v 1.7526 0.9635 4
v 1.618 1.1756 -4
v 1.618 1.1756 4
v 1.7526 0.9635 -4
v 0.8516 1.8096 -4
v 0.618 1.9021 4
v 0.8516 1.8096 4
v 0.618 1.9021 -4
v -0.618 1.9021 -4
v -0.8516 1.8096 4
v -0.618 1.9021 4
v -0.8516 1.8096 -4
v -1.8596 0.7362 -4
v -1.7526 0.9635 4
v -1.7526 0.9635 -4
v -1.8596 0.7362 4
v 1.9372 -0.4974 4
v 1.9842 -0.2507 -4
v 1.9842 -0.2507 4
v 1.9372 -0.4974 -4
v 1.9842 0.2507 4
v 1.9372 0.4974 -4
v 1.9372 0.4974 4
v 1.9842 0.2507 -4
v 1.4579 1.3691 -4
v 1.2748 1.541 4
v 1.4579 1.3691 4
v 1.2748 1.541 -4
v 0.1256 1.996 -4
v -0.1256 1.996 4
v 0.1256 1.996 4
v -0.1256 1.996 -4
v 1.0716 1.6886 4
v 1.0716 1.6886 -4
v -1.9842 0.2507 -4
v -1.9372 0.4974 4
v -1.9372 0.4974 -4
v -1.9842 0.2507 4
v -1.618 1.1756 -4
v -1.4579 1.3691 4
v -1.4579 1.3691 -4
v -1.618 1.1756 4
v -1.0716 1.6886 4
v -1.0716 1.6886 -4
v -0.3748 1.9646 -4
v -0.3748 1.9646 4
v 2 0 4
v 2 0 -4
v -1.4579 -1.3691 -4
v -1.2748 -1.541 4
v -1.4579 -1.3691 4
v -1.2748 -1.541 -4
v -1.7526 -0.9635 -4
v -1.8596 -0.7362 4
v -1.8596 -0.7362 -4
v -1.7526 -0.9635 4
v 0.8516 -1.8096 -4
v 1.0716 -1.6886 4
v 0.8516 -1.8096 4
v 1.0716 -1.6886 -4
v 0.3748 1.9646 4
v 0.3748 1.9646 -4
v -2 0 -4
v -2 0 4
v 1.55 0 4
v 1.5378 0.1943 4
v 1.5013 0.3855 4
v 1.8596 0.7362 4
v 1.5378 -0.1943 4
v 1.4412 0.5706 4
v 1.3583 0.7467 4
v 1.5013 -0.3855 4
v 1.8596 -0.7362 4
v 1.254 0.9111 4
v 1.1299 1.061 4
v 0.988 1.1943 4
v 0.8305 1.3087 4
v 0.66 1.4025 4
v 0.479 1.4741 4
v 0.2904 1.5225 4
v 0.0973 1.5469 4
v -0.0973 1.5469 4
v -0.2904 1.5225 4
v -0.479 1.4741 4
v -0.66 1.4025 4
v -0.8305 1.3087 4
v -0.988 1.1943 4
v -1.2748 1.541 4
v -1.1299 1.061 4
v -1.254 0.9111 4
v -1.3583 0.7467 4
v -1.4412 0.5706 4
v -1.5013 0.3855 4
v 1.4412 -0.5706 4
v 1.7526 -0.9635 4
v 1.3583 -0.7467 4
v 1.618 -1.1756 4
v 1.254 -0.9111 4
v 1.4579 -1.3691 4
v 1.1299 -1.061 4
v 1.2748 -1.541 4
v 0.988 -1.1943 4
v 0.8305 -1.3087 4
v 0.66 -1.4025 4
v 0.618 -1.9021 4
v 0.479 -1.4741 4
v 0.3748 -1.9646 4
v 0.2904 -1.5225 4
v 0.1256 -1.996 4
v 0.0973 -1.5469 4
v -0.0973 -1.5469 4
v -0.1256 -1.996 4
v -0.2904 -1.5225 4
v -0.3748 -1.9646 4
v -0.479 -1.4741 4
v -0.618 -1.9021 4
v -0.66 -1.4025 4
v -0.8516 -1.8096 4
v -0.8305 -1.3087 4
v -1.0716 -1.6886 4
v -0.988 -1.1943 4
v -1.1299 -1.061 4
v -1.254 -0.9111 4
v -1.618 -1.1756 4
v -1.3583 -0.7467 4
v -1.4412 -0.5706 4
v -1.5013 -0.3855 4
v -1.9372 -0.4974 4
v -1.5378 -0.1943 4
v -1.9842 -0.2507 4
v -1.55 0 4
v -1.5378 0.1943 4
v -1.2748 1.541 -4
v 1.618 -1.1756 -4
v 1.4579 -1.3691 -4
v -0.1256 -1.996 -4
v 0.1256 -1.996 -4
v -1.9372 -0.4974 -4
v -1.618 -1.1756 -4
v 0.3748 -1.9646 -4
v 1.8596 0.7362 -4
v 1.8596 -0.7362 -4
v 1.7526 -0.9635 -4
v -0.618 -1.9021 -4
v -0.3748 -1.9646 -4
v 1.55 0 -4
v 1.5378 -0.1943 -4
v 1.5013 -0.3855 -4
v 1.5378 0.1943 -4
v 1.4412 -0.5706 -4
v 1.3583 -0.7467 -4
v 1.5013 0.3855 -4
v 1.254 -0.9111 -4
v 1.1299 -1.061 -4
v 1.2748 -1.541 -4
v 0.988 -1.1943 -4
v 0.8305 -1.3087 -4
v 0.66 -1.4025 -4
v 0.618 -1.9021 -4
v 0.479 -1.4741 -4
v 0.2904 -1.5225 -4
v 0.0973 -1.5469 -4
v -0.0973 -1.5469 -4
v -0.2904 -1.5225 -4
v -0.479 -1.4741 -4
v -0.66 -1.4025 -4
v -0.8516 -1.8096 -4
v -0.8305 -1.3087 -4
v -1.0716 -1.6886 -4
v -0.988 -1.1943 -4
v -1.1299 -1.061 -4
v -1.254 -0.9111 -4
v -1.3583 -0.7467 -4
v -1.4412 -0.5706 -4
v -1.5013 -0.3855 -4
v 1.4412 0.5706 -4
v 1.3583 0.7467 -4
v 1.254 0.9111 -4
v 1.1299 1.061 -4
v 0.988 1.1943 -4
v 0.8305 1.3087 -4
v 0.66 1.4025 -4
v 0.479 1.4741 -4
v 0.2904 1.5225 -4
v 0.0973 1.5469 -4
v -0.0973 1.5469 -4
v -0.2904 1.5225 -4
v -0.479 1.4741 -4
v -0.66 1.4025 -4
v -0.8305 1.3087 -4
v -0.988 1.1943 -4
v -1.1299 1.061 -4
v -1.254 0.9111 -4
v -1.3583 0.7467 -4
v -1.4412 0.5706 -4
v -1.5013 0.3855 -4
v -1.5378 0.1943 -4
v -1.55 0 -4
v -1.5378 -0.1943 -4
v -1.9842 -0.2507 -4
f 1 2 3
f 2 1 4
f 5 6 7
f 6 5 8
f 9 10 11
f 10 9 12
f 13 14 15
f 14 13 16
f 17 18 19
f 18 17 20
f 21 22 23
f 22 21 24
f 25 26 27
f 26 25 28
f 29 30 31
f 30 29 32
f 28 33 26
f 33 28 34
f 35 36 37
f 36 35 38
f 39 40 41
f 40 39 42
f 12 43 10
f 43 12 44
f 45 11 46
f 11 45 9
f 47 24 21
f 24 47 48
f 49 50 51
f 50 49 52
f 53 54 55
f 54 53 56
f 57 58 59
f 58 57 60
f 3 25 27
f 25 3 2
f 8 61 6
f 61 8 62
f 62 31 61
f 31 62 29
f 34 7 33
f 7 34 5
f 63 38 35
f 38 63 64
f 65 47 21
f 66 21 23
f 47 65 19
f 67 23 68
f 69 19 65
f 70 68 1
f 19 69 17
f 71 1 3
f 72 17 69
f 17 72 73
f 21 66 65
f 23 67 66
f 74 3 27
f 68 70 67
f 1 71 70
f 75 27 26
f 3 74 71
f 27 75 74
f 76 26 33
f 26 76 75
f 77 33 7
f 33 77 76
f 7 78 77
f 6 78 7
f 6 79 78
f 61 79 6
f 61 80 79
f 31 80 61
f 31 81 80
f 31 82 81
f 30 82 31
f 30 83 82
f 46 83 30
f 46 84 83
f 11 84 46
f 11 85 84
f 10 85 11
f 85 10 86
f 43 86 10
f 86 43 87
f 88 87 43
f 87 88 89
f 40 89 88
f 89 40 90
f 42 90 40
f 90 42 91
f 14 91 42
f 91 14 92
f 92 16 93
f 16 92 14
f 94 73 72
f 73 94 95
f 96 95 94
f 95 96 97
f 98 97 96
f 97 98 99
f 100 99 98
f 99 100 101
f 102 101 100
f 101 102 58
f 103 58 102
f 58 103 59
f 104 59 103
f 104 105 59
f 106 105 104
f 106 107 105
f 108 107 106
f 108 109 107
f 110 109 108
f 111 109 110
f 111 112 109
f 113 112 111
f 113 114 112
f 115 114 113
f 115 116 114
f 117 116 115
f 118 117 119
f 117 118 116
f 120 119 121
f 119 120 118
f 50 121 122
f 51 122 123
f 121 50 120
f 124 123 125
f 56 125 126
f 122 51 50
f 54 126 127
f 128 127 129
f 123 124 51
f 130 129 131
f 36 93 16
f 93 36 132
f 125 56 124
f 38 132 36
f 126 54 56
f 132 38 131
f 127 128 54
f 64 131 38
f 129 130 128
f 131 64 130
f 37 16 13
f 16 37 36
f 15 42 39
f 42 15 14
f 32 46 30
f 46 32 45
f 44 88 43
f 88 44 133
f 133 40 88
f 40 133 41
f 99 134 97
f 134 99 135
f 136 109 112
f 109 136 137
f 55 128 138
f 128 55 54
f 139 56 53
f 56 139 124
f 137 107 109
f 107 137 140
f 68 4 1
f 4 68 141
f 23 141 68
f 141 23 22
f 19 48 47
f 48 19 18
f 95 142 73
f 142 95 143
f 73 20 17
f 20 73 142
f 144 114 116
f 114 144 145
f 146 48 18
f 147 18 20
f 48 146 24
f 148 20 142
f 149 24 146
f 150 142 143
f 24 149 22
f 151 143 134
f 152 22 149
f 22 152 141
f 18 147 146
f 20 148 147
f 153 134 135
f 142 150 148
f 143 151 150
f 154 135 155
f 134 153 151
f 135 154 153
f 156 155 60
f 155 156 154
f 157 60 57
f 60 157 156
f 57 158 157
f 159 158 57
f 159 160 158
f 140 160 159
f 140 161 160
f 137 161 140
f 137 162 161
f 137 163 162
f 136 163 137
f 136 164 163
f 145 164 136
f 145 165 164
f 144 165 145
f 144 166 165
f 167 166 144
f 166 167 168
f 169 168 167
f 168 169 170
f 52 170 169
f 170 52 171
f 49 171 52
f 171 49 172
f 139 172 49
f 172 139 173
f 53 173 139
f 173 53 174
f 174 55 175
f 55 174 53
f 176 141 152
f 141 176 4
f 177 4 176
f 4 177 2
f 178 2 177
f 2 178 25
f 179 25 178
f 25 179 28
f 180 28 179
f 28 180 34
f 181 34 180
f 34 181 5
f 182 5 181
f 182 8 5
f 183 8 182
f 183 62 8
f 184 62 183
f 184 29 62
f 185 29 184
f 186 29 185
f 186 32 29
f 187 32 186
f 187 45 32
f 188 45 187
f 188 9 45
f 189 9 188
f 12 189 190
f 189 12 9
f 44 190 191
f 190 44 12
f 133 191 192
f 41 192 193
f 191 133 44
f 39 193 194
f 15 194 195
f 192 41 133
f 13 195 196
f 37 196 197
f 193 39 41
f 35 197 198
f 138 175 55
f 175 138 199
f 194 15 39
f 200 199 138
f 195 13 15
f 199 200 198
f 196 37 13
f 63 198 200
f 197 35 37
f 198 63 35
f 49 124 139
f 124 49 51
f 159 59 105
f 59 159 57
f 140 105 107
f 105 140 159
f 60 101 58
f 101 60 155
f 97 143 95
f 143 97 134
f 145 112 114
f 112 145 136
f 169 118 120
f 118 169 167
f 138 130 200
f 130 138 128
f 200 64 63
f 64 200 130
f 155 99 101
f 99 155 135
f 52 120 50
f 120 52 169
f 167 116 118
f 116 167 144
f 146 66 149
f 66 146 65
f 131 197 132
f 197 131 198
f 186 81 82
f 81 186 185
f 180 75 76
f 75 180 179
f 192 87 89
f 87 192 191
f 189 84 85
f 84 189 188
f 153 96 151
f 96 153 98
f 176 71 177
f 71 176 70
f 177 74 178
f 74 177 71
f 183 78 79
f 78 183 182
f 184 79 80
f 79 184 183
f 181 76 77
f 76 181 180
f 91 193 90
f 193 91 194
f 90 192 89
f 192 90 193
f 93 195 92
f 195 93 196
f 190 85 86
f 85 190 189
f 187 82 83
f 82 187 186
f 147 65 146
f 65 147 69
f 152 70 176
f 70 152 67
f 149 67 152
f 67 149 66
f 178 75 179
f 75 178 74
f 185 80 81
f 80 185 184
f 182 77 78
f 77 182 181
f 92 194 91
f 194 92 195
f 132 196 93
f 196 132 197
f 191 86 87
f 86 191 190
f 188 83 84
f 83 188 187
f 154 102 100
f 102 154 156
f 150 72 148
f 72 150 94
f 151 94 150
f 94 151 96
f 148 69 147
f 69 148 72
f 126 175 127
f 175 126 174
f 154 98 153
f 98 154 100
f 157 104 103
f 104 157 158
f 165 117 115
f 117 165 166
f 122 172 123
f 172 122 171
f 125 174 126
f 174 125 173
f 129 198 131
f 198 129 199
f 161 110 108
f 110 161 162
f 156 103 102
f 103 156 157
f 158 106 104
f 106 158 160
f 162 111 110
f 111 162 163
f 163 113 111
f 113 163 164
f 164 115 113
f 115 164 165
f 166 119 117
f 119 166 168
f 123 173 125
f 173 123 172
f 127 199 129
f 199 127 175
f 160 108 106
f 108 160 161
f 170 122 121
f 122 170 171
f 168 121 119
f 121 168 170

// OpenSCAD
$fn = 50;


difference() {
	union() {
		translate(v = [0, 0, -4.0000000000]) {
			cylinder(h = 8, r = 2.0000000000);
		}
	}
	union() {
		translate(v = [0, 0, -100.0000000000]) {
			cylinder(h = 200, r = 1.5500000000);
		}
	}
}
